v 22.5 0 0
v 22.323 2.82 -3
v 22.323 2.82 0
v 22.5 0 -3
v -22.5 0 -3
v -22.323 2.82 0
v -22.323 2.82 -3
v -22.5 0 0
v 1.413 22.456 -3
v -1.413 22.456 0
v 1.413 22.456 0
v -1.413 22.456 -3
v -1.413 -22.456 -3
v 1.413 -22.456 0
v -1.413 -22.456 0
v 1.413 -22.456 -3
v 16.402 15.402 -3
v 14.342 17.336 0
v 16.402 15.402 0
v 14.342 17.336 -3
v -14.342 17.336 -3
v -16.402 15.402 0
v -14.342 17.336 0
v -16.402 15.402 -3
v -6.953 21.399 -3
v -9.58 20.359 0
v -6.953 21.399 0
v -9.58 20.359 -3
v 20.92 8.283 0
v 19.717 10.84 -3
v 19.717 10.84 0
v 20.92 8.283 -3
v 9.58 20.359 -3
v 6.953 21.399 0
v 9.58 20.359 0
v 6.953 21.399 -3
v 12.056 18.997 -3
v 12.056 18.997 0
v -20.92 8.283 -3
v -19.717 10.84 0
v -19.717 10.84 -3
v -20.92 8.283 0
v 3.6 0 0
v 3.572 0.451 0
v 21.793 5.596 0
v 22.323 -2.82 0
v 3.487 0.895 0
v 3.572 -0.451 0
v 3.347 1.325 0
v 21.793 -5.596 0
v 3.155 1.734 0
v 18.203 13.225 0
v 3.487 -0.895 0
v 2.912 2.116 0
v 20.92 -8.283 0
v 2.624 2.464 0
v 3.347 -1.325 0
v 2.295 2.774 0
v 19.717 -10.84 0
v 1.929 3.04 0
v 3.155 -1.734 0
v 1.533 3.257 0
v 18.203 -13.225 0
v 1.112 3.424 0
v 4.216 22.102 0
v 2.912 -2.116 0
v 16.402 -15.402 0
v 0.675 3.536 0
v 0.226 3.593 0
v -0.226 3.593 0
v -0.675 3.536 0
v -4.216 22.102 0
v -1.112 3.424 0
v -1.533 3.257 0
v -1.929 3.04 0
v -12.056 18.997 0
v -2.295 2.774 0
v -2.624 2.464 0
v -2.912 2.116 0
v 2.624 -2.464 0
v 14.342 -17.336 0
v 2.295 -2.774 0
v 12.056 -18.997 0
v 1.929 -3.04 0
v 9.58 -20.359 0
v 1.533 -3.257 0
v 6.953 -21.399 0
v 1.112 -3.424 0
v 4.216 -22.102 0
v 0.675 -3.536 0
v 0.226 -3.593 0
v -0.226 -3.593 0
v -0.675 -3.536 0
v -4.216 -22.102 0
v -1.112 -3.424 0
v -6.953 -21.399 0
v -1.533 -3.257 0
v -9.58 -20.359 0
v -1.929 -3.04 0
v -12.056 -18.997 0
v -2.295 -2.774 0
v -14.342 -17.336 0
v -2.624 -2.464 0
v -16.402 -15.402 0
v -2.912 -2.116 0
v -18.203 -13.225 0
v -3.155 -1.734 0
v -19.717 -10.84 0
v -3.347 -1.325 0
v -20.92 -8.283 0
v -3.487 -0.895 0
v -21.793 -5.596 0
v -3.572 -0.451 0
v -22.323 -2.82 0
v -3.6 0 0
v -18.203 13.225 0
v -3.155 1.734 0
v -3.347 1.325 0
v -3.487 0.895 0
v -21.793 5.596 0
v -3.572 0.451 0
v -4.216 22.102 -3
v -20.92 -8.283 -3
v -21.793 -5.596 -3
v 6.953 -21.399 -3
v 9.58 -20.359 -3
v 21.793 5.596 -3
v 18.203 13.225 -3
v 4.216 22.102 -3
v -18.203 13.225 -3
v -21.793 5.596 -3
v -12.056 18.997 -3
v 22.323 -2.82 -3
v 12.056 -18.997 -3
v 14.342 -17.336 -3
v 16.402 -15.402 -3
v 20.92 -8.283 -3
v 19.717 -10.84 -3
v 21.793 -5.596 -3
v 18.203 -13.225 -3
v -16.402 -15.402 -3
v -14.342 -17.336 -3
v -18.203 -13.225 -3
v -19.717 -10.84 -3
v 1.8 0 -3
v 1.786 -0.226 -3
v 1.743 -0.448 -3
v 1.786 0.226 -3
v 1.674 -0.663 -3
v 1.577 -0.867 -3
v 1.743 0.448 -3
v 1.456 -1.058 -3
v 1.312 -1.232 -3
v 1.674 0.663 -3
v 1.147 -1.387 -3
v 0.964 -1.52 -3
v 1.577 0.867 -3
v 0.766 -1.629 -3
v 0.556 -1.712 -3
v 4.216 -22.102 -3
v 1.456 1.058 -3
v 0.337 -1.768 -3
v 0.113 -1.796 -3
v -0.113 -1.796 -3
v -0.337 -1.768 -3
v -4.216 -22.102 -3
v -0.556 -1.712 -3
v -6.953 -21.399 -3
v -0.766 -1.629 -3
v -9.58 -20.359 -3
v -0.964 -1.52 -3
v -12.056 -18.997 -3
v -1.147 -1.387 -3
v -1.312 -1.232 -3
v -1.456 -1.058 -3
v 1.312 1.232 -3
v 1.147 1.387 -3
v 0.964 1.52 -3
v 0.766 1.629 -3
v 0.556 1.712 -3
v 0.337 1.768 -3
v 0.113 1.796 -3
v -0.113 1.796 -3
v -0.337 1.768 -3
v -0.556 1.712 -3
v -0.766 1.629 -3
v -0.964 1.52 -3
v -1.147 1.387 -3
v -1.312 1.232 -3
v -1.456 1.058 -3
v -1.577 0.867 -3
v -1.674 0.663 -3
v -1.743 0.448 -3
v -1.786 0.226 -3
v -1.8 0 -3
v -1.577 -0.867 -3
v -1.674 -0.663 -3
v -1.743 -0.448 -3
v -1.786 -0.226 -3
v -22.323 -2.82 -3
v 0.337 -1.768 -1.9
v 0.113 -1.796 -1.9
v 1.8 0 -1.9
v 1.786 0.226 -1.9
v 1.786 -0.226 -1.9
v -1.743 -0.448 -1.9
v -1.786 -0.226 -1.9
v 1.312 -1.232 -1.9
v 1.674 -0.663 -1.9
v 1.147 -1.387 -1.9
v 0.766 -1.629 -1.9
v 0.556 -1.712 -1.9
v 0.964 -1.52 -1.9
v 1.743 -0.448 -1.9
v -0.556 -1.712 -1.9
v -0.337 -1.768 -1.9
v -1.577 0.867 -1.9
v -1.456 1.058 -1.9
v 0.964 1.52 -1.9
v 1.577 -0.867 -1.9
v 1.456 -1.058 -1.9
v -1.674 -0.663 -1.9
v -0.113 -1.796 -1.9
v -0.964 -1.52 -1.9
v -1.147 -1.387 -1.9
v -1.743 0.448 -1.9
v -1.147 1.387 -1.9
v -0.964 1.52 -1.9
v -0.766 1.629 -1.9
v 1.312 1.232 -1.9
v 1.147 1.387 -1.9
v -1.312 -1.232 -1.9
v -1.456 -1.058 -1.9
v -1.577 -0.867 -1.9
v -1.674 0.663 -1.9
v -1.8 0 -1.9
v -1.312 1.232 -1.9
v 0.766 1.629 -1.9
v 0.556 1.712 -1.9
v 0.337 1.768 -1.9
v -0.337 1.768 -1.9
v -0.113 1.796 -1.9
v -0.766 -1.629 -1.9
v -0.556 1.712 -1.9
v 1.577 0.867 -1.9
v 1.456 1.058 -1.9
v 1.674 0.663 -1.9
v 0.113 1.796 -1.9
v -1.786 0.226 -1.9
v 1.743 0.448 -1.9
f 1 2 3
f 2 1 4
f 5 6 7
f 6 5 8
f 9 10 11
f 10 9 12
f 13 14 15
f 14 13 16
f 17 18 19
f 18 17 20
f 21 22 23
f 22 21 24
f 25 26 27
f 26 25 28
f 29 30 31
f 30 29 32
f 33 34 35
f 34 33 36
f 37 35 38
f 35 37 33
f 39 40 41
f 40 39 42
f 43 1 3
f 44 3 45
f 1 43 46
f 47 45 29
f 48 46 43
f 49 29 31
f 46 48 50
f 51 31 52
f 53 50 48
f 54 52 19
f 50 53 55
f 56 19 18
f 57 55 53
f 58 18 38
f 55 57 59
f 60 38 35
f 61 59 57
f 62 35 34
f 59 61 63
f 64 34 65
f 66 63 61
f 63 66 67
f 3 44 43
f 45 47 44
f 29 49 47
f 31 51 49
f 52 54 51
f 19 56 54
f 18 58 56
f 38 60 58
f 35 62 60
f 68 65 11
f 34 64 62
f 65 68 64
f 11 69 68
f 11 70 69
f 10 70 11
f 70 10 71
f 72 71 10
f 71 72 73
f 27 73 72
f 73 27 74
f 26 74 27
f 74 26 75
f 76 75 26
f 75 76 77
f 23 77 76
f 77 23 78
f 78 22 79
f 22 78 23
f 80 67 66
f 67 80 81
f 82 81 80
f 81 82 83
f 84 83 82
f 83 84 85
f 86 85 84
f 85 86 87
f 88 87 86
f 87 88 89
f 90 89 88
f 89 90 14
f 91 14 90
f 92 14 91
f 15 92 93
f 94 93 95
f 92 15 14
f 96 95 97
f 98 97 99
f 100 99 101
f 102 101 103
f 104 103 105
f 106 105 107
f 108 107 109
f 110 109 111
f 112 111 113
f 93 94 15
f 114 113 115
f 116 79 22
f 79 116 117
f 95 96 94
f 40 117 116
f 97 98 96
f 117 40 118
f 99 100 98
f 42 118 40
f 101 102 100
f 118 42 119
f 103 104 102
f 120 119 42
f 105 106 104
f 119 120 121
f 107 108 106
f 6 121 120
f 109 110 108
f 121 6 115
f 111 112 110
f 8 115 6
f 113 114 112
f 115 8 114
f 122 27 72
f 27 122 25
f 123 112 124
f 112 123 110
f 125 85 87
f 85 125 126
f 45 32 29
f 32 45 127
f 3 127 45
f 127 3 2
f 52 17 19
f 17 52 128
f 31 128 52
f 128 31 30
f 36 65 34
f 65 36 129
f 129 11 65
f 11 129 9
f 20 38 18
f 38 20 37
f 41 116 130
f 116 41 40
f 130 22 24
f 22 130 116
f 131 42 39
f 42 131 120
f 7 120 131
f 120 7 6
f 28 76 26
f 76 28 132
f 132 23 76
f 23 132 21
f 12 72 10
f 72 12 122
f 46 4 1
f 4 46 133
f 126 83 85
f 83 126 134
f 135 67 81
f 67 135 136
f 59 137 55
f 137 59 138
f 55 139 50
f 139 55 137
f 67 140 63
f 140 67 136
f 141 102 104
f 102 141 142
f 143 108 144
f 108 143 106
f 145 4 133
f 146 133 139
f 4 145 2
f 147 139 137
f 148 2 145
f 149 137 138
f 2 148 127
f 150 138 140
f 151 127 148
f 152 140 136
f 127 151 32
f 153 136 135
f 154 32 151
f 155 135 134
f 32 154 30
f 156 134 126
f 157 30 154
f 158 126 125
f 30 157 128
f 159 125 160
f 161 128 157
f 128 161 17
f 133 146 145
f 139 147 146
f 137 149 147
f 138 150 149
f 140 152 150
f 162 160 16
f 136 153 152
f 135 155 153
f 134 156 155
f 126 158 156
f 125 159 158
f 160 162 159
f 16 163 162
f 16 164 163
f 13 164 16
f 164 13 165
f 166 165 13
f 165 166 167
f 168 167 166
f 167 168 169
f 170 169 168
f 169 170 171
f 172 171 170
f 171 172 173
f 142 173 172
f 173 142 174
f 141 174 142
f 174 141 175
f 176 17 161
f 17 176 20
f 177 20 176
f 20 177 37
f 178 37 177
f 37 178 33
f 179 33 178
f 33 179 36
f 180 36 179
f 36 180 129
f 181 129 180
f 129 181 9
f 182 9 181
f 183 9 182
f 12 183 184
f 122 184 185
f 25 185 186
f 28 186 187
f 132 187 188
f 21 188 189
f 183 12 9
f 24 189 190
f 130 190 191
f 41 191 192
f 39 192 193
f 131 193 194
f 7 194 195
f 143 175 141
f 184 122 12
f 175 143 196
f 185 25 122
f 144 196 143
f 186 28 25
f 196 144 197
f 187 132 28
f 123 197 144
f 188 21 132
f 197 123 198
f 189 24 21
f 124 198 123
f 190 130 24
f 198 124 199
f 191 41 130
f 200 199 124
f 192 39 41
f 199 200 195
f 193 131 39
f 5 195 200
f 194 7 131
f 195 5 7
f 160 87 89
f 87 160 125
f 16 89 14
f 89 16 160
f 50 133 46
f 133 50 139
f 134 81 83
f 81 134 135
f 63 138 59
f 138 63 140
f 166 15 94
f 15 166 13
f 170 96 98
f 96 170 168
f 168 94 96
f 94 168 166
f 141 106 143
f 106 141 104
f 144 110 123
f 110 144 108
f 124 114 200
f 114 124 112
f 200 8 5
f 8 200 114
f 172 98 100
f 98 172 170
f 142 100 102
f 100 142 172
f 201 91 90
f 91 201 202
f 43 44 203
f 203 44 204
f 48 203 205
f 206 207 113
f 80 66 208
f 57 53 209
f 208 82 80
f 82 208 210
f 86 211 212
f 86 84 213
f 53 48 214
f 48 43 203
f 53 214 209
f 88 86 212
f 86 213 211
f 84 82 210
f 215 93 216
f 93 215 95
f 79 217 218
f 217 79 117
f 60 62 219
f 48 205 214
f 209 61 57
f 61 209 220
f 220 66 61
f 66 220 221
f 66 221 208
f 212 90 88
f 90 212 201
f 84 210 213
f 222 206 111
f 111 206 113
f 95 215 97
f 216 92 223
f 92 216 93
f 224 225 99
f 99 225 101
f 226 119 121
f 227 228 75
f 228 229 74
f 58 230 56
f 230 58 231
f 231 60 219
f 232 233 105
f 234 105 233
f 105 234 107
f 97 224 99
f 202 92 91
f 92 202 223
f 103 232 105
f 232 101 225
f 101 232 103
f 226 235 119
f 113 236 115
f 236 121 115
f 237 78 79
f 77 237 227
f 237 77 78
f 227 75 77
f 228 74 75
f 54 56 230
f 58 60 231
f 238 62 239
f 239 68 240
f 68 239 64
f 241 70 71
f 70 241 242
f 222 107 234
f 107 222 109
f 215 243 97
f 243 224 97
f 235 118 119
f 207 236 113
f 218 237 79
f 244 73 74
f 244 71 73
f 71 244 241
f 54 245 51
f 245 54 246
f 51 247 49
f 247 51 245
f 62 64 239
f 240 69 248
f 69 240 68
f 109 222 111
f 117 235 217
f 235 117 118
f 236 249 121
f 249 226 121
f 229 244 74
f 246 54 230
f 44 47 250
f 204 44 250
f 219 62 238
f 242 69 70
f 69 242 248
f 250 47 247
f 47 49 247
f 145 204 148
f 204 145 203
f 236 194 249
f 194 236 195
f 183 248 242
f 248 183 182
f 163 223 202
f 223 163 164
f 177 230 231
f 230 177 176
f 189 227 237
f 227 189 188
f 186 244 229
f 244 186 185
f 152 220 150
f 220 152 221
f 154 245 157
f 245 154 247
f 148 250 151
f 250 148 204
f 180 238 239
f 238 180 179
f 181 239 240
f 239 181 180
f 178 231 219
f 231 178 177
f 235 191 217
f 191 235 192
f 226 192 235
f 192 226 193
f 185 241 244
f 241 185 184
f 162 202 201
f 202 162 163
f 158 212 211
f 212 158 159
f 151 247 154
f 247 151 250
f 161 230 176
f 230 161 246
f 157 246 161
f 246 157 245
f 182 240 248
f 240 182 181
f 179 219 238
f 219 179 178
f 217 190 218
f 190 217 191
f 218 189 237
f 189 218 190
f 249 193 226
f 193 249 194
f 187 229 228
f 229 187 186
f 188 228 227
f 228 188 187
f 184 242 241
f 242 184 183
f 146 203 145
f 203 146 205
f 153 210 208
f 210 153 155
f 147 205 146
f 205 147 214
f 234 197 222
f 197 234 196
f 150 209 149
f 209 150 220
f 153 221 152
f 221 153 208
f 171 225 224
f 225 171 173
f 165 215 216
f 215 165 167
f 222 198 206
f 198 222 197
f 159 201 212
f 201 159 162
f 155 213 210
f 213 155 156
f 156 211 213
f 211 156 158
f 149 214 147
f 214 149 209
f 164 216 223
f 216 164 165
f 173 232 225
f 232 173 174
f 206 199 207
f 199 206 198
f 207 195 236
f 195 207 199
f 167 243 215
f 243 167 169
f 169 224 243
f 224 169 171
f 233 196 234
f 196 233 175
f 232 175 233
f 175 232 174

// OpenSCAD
$fn = 50;


difference() {
	union() {
		translate(v = [0, 0, -3.0000000000]) {
			cylinder(h = 3, r = 22.5000000000);
		}
		translate(v = [0, 0, -3.0000000000]) {
			cylinder(h = 3, r = 2.8750000000);
		}
	}
	union() {
		translate(v = [0, 0, 0]) {
			rotate(a = [0, 0, 0]) {
				difference() {
					union() {
						translate(v = [0, 0, -3.0000000000]) {
							cylinder(h = 3, r = 1.5000000000);
						}
						translate(v = [0, 0, -1.9000000000]) {
							cylinder(h = 1.9000000000, r1 = 1.8000000000, r2 = 3.6000000000);
						}
						translate(v = [0, 0, -3.0000000000]) {
							cylinder(h = 3, r = 1.8000000000);
						}
						translate(v = [0, 0, -3.0000000000]) {
							cylinder(h = 3, r = 1.5000000000);
						}
					}
					union();
				}
			}
		}
	}
}
